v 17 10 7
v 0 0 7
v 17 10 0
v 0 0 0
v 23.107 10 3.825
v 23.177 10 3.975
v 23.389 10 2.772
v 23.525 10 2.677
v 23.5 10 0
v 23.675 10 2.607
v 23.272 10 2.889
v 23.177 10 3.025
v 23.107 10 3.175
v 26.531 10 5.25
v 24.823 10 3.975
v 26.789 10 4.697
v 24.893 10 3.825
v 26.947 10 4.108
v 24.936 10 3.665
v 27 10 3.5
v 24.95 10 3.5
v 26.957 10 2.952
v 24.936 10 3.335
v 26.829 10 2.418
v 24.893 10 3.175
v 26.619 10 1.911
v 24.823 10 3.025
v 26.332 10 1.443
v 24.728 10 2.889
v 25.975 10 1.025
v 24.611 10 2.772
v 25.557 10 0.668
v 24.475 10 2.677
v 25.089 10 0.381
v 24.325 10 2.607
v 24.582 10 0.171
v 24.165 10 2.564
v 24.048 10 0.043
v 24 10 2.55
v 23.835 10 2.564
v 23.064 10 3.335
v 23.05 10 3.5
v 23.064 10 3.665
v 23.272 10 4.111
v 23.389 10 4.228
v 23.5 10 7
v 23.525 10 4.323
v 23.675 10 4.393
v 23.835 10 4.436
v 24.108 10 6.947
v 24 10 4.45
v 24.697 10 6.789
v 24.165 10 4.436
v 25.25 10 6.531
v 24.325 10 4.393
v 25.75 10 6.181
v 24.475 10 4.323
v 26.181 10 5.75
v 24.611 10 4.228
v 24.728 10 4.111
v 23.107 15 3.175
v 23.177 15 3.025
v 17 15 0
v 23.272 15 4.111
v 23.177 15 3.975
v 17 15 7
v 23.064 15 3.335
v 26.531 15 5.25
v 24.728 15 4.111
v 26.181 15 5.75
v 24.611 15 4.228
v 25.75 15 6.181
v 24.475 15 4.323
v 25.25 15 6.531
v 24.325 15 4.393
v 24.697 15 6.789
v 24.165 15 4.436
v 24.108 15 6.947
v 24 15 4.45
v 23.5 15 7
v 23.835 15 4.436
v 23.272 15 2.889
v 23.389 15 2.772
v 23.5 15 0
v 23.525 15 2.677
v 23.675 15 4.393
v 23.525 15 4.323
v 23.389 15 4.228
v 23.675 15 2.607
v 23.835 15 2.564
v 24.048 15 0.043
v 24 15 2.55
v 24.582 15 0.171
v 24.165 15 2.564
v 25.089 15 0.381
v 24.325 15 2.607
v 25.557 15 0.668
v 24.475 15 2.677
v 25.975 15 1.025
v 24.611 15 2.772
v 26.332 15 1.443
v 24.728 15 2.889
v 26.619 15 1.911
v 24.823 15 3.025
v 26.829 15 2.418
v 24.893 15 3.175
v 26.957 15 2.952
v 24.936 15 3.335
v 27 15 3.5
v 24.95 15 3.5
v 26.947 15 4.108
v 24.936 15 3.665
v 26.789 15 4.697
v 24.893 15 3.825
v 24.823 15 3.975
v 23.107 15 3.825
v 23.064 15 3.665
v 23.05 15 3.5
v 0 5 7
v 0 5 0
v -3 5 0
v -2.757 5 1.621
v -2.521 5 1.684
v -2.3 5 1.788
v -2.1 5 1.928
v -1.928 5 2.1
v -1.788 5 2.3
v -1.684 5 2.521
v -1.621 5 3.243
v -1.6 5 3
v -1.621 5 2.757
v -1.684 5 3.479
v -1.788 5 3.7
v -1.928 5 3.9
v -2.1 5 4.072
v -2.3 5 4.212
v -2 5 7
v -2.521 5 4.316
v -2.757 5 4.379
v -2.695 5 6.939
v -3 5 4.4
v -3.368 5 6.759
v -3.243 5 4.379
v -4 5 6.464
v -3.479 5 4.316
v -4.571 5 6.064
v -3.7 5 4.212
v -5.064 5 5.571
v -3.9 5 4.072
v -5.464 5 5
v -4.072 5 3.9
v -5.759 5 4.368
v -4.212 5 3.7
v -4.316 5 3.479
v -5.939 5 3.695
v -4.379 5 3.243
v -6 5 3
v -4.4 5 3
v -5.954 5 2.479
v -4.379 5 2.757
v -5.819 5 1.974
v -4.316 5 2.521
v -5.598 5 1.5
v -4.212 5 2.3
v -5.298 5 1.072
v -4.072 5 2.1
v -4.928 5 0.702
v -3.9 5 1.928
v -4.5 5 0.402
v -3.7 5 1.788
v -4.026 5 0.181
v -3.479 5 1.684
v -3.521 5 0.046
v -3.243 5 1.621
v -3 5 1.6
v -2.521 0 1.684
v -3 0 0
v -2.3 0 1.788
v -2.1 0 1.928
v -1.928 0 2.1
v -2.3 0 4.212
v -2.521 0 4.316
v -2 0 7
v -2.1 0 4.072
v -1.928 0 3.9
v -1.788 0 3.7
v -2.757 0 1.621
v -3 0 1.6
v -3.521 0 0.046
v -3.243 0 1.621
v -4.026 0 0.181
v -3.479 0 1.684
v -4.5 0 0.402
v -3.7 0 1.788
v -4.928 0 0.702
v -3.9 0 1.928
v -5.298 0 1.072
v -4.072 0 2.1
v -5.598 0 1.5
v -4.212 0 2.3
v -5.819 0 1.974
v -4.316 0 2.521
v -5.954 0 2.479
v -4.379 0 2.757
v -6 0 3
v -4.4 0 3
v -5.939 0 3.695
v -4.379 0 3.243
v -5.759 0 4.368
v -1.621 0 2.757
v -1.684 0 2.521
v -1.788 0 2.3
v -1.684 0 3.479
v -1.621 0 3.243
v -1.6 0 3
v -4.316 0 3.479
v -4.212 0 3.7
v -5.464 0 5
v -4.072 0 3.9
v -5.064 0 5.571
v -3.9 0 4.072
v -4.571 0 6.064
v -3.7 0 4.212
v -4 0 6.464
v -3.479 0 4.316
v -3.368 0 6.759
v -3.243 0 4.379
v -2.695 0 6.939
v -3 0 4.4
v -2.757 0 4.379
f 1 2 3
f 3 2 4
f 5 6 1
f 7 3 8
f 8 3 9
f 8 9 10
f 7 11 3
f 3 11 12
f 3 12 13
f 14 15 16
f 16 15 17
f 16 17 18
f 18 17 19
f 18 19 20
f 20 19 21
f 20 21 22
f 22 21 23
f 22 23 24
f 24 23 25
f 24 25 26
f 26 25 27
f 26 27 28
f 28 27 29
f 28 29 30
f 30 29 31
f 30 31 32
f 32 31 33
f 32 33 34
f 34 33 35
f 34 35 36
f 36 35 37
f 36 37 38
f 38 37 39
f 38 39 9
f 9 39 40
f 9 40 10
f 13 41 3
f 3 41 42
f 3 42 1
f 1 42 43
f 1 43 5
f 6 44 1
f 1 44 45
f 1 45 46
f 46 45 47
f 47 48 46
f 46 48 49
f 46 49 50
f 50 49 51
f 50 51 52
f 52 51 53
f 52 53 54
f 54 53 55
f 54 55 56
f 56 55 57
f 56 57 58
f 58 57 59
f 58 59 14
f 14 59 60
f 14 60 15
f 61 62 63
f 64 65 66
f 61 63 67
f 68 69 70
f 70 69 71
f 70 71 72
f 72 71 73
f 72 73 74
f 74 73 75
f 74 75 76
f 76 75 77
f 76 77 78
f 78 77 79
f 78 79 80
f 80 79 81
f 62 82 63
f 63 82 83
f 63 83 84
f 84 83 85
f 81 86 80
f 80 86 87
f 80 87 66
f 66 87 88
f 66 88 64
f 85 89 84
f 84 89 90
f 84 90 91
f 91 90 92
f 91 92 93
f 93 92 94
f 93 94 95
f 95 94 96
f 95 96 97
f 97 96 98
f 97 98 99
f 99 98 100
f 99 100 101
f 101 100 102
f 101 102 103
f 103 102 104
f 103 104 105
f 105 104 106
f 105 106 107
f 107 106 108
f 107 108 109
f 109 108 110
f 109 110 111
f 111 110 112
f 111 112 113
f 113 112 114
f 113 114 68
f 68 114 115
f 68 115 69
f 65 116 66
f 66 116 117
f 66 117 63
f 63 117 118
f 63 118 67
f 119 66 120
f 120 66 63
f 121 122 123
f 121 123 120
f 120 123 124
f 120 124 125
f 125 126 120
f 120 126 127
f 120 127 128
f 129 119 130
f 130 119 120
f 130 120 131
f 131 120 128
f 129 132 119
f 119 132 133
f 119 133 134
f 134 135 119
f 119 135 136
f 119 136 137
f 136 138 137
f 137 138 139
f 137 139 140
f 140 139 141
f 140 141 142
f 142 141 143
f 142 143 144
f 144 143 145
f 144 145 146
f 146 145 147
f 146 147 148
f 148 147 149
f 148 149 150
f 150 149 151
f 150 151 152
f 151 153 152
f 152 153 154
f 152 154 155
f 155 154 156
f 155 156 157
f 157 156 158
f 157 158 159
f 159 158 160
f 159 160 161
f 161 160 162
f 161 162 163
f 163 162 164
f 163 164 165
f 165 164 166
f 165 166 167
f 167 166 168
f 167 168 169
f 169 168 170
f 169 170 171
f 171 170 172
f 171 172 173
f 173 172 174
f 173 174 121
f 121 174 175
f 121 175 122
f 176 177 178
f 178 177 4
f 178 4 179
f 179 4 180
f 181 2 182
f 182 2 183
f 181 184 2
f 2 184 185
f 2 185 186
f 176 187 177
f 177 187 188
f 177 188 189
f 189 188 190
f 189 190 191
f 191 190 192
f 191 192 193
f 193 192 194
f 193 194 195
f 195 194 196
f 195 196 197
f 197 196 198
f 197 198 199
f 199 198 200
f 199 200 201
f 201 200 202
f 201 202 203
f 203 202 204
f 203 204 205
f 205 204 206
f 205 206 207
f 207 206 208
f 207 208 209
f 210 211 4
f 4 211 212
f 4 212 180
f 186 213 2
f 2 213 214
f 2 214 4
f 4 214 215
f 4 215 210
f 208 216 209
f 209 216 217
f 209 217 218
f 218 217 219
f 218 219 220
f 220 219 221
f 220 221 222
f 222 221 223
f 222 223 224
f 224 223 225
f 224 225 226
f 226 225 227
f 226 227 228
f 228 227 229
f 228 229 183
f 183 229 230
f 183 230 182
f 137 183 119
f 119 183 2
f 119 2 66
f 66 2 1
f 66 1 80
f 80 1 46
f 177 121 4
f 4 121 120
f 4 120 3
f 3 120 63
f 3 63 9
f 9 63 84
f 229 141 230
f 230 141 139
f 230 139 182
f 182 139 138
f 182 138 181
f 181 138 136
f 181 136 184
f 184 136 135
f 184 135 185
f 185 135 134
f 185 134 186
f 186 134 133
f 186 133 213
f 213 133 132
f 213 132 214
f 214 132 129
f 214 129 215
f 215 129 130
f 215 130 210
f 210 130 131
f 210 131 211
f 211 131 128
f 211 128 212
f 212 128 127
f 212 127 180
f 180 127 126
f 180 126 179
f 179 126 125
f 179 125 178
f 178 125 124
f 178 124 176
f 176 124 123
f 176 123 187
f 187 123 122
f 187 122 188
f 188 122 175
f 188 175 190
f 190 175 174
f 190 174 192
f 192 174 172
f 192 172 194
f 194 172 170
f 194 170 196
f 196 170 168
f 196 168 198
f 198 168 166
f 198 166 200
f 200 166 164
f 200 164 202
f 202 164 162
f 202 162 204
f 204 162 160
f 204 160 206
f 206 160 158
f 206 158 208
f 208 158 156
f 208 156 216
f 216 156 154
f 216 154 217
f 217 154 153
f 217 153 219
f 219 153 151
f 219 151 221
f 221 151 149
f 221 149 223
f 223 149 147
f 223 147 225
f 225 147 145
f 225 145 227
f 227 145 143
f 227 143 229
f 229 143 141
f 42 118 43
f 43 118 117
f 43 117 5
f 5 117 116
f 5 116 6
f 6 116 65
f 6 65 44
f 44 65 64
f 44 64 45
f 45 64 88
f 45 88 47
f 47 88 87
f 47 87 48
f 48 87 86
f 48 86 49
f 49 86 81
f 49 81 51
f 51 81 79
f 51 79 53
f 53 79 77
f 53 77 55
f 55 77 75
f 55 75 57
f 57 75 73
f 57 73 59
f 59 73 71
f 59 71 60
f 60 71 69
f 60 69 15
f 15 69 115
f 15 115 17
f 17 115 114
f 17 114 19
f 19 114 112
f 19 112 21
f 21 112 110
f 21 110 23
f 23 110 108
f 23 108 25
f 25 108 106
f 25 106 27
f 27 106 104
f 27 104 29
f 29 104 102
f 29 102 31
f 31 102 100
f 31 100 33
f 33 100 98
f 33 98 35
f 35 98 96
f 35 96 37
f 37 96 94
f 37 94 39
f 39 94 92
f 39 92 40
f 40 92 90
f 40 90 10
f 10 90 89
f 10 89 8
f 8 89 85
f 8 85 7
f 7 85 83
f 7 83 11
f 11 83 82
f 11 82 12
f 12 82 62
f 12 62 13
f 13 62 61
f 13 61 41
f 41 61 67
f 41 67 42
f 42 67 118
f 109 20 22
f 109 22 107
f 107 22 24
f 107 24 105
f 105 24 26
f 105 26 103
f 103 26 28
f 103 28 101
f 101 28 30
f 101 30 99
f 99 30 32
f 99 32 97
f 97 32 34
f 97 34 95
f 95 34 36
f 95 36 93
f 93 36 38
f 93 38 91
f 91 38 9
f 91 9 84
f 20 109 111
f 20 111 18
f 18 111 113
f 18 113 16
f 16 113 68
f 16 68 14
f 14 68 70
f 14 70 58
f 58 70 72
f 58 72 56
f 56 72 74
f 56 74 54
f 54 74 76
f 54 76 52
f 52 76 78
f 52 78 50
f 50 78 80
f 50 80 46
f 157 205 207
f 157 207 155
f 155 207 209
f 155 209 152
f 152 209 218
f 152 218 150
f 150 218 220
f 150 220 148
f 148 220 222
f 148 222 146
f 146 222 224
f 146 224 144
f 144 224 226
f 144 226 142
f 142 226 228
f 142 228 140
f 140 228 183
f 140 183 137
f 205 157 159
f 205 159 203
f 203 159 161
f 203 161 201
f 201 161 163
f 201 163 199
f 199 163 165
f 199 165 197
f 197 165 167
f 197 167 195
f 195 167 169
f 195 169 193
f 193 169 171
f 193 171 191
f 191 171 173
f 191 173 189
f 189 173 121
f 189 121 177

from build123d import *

# Parameters (mm, degrees)
BOSS_EXTRU_1_DEPTH      = 7
ESQUISSE3_R             = 1.4
ENL_V_MAT_EXTRU_1_DEPTH = 7
ESQUISSE4_R             = 0.95
ENL_V_MAT_EXTRU_2_DEPTH = 7
CONG_1_R                = 3.5
CONG_2_R                = 4
CONG_3_R                = 3


with BuildPart() as part:
    # Esquisse1 → Boss.-Extru.1 (new body)
    with BuildSketch(Plane.XY):
        Polygon((17, 15), (0, 5), (-6, 5), (-6, 0), (0, 0), (17, 10), (27, 10), (27, 15), align=None)
    extrude(amount=BOSS_EXTRU_1_DEPTH)

    # Esquisse3 → Enlèv. mat.-Extru.1 (cut)
    with BuildSketch(Plane(origin=(0, 5, 0), x_dir=(1, 0, 0), z_dir=(0, 1, 0))):
        with Locations(Location((-3, -3, 0), (0, 0, 270))):
            Circle(ESQUISSE3_R)
    extrude(amount=-ENL_V_MAT_EXTRU_1_DEPTH, mode=Mode.SUBTRACT)

    # Esquisse4 → Enlèv. mat.-Extru.2 (cut)
    with BuildSketch(Plane(origin=(0, 15, 0), x_dir=(1, 0, 0), z_dir=(0, 1, 0))):
        with Locations(Location((24, -3.5, 0), (0, 0, 180))):
            Circle(ESQUISSE4_R)
    extrude(amount=-ENL_V_MAT_EXTRU_2_DEPTH, mode=Mode.SUBTRACT)

    # Congé1
    cong_1_edges = [part.edges().sort_by_distance(p)[0] for p in [
        (27, 12.5, 7),
        (27, 12.5, 0),
    ]]
    fillet(cong_1_edges, radius=CONG_1_R - 0.0001)  # a hair under: the kernel refuses the full size

    # Congé2
    cong_2_edges = [part.edges().sort_by_distance(p)[0] for p in [
        (-6, 2.5, 7),
    ]]
    fillet(cong_2_edges, radius=CONG_2_R)

    # Congé3
    cong_3_edges = [part.edges().sort_by_distance(p)[0] for p in [
        (-6, 2.5, 0),
    ]]
    fillet(cong_3_edges, radius=CONG_3_R - 0.0001)  # a hair under: the kernel refuses the full size


solid = part.part
